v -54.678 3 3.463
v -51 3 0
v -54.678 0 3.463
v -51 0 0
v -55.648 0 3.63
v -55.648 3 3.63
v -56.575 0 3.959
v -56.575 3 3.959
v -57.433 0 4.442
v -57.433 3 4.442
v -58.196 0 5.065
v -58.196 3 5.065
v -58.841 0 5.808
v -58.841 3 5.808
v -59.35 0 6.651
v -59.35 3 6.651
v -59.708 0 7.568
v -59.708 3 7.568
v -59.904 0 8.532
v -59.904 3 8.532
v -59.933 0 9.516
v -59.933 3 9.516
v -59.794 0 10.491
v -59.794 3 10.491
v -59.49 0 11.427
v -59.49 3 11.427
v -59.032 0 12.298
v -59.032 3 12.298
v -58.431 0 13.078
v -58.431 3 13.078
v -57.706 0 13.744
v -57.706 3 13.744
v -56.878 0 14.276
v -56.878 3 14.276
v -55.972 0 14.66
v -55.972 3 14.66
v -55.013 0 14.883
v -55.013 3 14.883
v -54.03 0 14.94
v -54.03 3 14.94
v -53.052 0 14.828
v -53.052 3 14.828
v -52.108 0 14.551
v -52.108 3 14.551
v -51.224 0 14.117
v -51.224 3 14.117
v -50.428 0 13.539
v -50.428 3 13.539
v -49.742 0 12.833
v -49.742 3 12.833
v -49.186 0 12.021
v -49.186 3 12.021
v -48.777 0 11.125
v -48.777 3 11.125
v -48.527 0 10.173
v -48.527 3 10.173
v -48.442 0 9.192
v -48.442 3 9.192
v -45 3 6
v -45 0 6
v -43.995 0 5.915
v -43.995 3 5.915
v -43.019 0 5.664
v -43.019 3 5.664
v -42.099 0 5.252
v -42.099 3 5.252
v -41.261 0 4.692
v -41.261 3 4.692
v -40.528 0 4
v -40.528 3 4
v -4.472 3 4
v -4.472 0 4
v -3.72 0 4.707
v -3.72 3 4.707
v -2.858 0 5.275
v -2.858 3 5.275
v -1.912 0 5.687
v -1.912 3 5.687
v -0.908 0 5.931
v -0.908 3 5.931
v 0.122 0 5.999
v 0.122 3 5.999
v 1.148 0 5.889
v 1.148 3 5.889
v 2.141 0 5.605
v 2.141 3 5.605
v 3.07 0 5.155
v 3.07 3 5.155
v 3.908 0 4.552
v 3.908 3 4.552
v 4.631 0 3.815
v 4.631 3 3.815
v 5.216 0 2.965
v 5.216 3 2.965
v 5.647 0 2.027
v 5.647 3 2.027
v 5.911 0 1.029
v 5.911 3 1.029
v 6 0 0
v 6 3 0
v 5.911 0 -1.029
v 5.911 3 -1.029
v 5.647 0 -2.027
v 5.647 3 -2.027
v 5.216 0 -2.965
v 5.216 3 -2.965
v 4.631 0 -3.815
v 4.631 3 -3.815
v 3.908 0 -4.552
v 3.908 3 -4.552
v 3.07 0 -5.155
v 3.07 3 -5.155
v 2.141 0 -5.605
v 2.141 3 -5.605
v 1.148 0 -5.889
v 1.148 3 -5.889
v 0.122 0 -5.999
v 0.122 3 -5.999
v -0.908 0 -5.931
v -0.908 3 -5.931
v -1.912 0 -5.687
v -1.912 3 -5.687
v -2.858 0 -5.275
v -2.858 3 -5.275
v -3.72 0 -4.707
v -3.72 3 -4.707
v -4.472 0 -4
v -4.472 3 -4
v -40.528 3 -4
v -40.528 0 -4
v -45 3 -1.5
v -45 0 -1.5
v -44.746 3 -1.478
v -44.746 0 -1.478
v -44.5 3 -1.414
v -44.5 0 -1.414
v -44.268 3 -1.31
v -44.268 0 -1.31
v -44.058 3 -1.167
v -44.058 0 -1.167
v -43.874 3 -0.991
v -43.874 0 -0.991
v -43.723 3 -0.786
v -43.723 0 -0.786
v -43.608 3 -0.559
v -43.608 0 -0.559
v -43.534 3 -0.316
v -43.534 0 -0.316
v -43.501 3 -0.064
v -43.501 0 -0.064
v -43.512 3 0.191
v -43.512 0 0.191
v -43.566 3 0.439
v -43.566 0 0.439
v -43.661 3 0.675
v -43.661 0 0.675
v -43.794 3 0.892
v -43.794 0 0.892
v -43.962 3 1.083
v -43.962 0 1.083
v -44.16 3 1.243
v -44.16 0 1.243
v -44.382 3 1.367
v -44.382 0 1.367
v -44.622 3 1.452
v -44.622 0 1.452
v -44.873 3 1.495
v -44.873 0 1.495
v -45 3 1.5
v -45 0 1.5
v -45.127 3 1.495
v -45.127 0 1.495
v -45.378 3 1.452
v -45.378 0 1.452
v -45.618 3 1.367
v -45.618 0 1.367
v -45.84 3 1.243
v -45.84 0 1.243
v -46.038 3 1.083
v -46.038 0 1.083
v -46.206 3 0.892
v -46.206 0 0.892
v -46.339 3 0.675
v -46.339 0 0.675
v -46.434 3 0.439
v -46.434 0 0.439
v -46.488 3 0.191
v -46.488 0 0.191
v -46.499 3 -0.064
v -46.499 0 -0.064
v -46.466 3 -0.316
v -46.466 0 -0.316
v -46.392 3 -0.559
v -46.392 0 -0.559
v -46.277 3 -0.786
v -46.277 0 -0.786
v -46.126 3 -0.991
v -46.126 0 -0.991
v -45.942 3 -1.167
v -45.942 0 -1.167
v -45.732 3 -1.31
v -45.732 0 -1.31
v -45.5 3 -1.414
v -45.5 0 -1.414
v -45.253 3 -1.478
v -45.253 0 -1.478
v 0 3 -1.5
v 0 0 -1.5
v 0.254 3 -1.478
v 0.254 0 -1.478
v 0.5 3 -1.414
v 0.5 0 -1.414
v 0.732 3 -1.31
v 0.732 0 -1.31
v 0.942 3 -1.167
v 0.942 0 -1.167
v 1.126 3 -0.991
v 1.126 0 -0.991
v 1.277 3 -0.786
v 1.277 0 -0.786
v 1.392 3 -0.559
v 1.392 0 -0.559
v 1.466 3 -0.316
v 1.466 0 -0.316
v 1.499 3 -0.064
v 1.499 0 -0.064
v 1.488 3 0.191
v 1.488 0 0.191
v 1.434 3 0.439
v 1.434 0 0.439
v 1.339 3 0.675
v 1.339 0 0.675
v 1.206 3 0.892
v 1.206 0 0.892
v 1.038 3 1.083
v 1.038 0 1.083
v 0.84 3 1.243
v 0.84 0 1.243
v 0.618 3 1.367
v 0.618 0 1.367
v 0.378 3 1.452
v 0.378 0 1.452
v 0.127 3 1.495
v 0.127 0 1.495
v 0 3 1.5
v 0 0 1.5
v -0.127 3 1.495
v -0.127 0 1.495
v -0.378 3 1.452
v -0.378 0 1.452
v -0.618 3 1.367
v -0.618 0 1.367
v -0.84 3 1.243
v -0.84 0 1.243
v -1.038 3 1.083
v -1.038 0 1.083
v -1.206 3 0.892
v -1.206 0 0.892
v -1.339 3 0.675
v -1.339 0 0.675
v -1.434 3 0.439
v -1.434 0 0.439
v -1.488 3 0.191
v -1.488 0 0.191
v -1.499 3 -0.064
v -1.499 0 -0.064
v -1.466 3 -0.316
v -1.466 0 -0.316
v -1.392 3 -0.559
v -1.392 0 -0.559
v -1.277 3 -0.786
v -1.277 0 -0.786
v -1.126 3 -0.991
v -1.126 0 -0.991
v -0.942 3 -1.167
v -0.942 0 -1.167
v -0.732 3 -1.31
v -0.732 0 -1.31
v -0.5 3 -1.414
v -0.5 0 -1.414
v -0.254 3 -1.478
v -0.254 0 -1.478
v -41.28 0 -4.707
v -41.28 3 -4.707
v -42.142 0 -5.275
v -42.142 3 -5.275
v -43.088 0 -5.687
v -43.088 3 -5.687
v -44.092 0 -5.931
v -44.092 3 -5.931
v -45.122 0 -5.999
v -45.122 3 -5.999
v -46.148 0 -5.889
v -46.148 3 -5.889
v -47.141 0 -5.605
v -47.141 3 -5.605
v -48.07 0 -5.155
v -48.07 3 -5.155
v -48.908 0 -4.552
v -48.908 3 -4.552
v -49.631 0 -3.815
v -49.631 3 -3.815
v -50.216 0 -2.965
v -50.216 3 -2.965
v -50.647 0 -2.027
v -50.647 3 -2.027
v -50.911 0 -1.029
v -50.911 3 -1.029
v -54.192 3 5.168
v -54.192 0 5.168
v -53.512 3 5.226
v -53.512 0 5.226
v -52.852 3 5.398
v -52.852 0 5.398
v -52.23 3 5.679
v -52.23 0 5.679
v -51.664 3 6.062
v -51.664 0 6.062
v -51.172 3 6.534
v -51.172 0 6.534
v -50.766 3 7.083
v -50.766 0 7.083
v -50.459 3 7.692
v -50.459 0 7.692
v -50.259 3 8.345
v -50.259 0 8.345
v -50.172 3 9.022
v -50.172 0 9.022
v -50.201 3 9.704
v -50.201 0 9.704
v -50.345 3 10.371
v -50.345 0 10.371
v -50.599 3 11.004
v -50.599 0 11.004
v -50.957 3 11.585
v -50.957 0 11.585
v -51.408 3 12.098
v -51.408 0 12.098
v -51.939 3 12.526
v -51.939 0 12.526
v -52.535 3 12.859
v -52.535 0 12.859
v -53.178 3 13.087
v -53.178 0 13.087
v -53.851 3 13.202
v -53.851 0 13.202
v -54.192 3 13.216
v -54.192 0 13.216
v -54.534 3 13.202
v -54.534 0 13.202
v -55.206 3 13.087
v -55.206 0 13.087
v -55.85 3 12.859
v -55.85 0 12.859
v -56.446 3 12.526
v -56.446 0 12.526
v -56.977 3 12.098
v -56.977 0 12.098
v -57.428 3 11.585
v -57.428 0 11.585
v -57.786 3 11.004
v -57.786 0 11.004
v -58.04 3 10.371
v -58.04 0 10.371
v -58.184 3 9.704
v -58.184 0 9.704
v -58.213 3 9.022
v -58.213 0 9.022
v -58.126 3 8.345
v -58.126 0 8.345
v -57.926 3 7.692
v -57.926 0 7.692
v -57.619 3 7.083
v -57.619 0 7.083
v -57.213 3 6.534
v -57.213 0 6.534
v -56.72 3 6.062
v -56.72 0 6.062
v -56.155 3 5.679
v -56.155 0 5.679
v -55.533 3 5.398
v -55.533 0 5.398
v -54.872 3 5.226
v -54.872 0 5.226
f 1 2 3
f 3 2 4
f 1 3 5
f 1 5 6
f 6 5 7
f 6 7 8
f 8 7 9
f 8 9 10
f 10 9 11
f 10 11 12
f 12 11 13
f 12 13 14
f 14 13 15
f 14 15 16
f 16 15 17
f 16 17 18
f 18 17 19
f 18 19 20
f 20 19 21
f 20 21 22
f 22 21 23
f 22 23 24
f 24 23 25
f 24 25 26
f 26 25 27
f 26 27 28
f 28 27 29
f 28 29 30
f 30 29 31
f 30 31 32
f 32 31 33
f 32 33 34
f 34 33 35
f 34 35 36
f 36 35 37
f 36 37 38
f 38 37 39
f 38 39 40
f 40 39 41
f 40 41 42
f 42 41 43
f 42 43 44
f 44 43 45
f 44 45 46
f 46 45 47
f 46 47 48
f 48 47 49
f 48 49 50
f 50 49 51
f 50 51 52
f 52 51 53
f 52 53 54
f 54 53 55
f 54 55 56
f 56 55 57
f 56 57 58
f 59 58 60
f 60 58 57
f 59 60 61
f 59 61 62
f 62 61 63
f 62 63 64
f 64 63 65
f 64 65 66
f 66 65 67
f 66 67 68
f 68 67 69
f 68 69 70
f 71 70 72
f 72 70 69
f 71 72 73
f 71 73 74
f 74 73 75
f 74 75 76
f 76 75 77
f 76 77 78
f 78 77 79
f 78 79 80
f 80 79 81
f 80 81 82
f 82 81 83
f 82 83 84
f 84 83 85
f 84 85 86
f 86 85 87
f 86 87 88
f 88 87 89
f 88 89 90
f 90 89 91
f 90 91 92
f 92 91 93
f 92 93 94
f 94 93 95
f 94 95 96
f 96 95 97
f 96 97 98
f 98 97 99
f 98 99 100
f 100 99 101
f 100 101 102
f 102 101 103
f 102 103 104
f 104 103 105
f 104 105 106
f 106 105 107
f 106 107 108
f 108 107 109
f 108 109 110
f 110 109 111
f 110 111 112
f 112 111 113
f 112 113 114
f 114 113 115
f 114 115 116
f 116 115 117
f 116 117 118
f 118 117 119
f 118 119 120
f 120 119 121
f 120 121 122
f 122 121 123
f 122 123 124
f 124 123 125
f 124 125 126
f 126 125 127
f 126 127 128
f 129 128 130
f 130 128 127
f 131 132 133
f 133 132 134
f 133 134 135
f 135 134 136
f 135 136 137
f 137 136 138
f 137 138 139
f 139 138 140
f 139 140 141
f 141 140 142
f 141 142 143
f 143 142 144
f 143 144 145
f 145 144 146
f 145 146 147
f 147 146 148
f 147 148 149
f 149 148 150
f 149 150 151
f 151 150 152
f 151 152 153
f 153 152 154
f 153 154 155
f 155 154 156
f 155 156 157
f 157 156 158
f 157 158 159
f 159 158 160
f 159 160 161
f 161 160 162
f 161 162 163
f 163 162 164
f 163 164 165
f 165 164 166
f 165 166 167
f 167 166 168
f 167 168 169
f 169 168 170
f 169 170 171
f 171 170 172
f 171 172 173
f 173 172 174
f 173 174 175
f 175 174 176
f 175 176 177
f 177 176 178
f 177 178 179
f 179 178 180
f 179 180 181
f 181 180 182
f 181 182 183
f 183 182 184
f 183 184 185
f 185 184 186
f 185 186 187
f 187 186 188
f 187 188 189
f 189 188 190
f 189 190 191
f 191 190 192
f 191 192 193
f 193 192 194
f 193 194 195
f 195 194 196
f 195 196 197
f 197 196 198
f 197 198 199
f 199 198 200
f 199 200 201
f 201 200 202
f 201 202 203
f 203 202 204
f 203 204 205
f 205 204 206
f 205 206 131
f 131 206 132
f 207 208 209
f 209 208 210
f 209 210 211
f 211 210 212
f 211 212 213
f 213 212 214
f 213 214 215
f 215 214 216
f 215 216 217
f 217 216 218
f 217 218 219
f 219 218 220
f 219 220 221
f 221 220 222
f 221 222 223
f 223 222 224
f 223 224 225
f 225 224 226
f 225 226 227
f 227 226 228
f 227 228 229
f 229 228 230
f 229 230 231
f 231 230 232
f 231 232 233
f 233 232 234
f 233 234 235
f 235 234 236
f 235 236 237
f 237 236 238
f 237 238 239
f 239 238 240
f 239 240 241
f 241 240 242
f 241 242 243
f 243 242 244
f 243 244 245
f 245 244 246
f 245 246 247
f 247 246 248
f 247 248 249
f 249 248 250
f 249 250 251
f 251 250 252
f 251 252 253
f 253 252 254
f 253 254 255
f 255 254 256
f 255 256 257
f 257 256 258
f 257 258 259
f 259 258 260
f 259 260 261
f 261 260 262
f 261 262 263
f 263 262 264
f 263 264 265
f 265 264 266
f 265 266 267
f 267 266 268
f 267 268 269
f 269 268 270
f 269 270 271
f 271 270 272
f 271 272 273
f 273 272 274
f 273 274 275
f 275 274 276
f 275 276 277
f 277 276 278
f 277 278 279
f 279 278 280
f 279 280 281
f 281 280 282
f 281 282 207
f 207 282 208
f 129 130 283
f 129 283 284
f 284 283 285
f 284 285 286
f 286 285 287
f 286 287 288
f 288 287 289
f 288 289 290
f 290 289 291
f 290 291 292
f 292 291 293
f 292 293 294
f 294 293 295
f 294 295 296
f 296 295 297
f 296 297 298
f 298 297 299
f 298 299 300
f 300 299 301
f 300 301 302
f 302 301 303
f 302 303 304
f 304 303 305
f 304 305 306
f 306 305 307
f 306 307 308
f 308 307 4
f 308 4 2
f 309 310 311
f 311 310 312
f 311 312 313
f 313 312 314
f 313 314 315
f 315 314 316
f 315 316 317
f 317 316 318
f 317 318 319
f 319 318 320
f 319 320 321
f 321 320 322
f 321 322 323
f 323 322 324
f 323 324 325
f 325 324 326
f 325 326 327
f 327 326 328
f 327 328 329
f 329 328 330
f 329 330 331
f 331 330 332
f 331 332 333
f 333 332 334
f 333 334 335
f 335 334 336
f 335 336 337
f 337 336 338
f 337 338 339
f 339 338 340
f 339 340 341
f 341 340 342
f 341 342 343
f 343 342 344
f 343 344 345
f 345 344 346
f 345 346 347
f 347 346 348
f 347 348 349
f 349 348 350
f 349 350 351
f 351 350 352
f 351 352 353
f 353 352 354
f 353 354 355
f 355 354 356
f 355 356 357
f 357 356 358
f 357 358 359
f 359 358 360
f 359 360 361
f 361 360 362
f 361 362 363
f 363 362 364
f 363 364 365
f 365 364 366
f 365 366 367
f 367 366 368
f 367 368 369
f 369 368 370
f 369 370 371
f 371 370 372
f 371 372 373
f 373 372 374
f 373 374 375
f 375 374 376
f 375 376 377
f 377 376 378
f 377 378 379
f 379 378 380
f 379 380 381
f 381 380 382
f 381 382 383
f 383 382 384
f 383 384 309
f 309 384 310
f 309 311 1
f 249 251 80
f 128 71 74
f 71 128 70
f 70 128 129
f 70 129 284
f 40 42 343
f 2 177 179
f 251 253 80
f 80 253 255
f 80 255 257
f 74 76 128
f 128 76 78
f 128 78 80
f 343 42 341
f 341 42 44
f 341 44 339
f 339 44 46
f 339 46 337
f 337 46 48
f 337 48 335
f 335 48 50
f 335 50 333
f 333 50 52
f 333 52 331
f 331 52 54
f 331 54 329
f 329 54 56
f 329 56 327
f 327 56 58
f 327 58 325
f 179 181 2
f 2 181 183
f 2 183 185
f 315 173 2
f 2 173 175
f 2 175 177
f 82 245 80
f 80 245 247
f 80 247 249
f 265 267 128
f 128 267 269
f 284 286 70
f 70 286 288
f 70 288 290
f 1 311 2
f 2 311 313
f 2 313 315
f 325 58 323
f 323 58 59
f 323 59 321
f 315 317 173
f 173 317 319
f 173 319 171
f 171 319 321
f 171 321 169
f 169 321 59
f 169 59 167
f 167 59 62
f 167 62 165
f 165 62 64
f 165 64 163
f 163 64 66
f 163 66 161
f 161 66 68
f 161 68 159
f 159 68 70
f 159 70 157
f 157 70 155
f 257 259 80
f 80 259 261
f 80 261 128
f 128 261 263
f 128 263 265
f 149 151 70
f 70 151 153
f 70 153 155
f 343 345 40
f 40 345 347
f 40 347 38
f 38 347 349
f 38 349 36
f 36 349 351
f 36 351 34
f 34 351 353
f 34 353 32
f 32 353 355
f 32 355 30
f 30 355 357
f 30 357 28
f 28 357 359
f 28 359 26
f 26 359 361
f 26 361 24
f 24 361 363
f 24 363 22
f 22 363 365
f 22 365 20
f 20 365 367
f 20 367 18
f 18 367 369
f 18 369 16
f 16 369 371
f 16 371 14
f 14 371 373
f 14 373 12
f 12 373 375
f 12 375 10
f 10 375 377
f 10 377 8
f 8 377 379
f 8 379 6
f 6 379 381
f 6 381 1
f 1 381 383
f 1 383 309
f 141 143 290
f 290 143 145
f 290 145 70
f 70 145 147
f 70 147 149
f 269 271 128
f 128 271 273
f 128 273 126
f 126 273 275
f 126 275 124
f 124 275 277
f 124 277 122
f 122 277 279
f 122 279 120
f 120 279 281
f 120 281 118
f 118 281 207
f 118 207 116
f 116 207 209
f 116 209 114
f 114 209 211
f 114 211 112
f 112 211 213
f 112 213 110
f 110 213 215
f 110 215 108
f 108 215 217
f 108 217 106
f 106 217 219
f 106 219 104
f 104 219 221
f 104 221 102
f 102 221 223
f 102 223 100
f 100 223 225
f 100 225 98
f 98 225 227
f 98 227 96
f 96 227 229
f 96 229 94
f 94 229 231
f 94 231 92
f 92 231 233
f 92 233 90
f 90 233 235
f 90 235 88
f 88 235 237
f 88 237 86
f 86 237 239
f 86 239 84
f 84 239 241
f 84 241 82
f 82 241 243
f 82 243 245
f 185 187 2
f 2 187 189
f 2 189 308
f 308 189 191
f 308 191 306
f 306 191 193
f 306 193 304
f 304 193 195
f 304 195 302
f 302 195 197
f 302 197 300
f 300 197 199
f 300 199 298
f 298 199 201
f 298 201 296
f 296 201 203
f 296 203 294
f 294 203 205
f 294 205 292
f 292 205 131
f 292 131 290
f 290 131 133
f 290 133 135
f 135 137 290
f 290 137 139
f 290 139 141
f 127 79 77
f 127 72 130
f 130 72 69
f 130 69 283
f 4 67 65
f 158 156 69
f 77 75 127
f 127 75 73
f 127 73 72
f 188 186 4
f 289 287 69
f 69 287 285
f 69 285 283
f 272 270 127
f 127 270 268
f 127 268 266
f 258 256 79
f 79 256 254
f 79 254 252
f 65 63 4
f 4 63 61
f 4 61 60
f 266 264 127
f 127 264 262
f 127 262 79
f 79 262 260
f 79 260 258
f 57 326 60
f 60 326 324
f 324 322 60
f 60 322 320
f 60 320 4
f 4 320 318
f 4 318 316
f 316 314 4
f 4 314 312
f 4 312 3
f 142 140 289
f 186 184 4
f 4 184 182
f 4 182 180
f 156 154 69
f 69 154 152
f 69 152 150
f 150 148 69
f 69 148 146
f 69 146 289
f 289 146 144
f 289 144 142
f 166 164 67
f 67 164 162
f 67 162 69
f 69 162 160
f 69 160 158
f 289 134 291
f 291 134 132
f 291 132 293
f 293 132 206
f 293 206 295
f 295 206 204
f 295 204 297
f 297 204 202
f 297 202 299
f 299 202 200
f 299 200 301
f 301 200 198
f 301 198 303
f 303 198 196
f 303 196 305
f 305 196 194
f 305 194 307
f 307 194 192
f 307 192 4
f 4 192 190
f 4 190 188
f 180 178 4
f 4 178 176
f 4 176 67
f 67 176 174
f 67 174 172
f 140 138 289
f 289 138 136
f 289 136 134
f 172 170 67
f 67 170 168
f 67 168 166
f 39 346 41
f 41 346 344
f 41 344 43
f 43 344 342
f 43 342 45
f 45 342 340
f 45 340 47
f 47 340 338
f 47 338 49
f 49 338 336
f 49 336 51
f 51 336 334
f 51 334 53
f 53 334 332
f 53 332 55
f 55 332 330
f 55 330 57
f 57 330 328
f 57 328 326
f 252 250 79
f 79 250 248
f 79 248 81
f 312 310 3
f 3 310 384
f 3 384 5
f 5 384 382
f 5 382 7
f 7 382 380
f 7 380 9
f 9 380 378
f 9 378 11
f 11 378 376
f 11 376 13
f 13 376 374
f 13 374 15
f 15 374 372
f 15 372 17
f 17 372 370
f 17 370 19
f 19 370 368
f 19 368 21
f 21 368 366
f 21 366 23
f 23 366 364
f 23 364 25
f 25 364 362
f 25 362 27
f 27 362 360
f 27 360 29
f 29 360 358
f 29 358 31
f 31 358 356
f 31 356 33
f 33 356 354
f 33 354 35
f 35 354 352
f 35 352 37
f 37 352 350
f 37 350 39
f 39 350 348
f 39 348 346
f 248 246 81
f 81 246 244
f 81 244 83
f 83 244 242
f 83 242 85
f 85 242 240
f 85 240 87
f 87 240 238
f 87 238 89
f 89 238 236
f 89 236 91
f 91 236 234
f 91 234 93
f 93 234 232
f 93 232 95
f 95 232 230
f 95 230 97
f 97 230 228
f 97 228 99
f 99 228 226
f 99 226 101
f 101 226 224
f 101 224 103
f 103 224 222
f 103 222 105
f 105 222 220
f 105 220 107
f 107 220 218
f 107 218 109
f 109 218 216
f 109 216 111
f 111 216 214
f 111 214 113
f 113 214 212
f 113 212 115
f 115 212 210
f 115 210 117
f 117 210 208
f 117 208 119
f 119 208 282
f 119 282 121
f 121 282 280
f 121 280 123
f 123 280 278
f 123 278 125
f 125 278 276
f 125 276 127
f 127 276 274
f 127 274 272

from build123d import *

# Parameters (mm, degrees)
ESQUISSE10_R       = 4.024
ESQUISSE10_R_2     = 1.5
BOSS_EXTRU_1_DEPTH = 3


with BuildPart() as part:
    # Esquisse10 → Boss.-Extru.1 (new body)
    with BuildSketch(Plane(origin=(0, 0, 0), x_dir=(1, 0, 0), z_dir=(0, 1, 0))):
        with BuildLine():
            Line((-4.472135955, 4), (-40.527864045, 4))
            ThreePointArc((-40.527864045, 4), (-47.140932539, 5.605034154), (-51, 0))
            Line((-51, 0), (-54.677584007, -3.462895596))
            ThreePointArc((-54.677584007, -3.462895596), (-58.082929496, -13.426321088), (-48.442388155, -9.192388155))
            Line((-48.442388155, -9.192388155), (-45, -6))
            ThreePointArc((-45, -6), (-42.550510257, -5.477225575), (-40.527864045, -4))
            Line((-40.527864045, -4), (-4.472135955, -4))
            ThreePointArc((-4.472135955, -4), (6, 0), (-4.472135955, 4))
        make_face()
        with Locations((-54.192388155, -9.192388155)):
            Circle(ESQUISSE10_R, mode=Mode.SUBTRACT)
        with Locations((-45, 0)):
            Circle(ESQUISSE10_R_2, mode=Mode.SUBTRACT)
        Circle(ESQUISSE10_R_2, mode=Mode.SUBTRACT)
    extrude(amount=BOSS_EXTRU_1_DEPTH)


solid = part.part
